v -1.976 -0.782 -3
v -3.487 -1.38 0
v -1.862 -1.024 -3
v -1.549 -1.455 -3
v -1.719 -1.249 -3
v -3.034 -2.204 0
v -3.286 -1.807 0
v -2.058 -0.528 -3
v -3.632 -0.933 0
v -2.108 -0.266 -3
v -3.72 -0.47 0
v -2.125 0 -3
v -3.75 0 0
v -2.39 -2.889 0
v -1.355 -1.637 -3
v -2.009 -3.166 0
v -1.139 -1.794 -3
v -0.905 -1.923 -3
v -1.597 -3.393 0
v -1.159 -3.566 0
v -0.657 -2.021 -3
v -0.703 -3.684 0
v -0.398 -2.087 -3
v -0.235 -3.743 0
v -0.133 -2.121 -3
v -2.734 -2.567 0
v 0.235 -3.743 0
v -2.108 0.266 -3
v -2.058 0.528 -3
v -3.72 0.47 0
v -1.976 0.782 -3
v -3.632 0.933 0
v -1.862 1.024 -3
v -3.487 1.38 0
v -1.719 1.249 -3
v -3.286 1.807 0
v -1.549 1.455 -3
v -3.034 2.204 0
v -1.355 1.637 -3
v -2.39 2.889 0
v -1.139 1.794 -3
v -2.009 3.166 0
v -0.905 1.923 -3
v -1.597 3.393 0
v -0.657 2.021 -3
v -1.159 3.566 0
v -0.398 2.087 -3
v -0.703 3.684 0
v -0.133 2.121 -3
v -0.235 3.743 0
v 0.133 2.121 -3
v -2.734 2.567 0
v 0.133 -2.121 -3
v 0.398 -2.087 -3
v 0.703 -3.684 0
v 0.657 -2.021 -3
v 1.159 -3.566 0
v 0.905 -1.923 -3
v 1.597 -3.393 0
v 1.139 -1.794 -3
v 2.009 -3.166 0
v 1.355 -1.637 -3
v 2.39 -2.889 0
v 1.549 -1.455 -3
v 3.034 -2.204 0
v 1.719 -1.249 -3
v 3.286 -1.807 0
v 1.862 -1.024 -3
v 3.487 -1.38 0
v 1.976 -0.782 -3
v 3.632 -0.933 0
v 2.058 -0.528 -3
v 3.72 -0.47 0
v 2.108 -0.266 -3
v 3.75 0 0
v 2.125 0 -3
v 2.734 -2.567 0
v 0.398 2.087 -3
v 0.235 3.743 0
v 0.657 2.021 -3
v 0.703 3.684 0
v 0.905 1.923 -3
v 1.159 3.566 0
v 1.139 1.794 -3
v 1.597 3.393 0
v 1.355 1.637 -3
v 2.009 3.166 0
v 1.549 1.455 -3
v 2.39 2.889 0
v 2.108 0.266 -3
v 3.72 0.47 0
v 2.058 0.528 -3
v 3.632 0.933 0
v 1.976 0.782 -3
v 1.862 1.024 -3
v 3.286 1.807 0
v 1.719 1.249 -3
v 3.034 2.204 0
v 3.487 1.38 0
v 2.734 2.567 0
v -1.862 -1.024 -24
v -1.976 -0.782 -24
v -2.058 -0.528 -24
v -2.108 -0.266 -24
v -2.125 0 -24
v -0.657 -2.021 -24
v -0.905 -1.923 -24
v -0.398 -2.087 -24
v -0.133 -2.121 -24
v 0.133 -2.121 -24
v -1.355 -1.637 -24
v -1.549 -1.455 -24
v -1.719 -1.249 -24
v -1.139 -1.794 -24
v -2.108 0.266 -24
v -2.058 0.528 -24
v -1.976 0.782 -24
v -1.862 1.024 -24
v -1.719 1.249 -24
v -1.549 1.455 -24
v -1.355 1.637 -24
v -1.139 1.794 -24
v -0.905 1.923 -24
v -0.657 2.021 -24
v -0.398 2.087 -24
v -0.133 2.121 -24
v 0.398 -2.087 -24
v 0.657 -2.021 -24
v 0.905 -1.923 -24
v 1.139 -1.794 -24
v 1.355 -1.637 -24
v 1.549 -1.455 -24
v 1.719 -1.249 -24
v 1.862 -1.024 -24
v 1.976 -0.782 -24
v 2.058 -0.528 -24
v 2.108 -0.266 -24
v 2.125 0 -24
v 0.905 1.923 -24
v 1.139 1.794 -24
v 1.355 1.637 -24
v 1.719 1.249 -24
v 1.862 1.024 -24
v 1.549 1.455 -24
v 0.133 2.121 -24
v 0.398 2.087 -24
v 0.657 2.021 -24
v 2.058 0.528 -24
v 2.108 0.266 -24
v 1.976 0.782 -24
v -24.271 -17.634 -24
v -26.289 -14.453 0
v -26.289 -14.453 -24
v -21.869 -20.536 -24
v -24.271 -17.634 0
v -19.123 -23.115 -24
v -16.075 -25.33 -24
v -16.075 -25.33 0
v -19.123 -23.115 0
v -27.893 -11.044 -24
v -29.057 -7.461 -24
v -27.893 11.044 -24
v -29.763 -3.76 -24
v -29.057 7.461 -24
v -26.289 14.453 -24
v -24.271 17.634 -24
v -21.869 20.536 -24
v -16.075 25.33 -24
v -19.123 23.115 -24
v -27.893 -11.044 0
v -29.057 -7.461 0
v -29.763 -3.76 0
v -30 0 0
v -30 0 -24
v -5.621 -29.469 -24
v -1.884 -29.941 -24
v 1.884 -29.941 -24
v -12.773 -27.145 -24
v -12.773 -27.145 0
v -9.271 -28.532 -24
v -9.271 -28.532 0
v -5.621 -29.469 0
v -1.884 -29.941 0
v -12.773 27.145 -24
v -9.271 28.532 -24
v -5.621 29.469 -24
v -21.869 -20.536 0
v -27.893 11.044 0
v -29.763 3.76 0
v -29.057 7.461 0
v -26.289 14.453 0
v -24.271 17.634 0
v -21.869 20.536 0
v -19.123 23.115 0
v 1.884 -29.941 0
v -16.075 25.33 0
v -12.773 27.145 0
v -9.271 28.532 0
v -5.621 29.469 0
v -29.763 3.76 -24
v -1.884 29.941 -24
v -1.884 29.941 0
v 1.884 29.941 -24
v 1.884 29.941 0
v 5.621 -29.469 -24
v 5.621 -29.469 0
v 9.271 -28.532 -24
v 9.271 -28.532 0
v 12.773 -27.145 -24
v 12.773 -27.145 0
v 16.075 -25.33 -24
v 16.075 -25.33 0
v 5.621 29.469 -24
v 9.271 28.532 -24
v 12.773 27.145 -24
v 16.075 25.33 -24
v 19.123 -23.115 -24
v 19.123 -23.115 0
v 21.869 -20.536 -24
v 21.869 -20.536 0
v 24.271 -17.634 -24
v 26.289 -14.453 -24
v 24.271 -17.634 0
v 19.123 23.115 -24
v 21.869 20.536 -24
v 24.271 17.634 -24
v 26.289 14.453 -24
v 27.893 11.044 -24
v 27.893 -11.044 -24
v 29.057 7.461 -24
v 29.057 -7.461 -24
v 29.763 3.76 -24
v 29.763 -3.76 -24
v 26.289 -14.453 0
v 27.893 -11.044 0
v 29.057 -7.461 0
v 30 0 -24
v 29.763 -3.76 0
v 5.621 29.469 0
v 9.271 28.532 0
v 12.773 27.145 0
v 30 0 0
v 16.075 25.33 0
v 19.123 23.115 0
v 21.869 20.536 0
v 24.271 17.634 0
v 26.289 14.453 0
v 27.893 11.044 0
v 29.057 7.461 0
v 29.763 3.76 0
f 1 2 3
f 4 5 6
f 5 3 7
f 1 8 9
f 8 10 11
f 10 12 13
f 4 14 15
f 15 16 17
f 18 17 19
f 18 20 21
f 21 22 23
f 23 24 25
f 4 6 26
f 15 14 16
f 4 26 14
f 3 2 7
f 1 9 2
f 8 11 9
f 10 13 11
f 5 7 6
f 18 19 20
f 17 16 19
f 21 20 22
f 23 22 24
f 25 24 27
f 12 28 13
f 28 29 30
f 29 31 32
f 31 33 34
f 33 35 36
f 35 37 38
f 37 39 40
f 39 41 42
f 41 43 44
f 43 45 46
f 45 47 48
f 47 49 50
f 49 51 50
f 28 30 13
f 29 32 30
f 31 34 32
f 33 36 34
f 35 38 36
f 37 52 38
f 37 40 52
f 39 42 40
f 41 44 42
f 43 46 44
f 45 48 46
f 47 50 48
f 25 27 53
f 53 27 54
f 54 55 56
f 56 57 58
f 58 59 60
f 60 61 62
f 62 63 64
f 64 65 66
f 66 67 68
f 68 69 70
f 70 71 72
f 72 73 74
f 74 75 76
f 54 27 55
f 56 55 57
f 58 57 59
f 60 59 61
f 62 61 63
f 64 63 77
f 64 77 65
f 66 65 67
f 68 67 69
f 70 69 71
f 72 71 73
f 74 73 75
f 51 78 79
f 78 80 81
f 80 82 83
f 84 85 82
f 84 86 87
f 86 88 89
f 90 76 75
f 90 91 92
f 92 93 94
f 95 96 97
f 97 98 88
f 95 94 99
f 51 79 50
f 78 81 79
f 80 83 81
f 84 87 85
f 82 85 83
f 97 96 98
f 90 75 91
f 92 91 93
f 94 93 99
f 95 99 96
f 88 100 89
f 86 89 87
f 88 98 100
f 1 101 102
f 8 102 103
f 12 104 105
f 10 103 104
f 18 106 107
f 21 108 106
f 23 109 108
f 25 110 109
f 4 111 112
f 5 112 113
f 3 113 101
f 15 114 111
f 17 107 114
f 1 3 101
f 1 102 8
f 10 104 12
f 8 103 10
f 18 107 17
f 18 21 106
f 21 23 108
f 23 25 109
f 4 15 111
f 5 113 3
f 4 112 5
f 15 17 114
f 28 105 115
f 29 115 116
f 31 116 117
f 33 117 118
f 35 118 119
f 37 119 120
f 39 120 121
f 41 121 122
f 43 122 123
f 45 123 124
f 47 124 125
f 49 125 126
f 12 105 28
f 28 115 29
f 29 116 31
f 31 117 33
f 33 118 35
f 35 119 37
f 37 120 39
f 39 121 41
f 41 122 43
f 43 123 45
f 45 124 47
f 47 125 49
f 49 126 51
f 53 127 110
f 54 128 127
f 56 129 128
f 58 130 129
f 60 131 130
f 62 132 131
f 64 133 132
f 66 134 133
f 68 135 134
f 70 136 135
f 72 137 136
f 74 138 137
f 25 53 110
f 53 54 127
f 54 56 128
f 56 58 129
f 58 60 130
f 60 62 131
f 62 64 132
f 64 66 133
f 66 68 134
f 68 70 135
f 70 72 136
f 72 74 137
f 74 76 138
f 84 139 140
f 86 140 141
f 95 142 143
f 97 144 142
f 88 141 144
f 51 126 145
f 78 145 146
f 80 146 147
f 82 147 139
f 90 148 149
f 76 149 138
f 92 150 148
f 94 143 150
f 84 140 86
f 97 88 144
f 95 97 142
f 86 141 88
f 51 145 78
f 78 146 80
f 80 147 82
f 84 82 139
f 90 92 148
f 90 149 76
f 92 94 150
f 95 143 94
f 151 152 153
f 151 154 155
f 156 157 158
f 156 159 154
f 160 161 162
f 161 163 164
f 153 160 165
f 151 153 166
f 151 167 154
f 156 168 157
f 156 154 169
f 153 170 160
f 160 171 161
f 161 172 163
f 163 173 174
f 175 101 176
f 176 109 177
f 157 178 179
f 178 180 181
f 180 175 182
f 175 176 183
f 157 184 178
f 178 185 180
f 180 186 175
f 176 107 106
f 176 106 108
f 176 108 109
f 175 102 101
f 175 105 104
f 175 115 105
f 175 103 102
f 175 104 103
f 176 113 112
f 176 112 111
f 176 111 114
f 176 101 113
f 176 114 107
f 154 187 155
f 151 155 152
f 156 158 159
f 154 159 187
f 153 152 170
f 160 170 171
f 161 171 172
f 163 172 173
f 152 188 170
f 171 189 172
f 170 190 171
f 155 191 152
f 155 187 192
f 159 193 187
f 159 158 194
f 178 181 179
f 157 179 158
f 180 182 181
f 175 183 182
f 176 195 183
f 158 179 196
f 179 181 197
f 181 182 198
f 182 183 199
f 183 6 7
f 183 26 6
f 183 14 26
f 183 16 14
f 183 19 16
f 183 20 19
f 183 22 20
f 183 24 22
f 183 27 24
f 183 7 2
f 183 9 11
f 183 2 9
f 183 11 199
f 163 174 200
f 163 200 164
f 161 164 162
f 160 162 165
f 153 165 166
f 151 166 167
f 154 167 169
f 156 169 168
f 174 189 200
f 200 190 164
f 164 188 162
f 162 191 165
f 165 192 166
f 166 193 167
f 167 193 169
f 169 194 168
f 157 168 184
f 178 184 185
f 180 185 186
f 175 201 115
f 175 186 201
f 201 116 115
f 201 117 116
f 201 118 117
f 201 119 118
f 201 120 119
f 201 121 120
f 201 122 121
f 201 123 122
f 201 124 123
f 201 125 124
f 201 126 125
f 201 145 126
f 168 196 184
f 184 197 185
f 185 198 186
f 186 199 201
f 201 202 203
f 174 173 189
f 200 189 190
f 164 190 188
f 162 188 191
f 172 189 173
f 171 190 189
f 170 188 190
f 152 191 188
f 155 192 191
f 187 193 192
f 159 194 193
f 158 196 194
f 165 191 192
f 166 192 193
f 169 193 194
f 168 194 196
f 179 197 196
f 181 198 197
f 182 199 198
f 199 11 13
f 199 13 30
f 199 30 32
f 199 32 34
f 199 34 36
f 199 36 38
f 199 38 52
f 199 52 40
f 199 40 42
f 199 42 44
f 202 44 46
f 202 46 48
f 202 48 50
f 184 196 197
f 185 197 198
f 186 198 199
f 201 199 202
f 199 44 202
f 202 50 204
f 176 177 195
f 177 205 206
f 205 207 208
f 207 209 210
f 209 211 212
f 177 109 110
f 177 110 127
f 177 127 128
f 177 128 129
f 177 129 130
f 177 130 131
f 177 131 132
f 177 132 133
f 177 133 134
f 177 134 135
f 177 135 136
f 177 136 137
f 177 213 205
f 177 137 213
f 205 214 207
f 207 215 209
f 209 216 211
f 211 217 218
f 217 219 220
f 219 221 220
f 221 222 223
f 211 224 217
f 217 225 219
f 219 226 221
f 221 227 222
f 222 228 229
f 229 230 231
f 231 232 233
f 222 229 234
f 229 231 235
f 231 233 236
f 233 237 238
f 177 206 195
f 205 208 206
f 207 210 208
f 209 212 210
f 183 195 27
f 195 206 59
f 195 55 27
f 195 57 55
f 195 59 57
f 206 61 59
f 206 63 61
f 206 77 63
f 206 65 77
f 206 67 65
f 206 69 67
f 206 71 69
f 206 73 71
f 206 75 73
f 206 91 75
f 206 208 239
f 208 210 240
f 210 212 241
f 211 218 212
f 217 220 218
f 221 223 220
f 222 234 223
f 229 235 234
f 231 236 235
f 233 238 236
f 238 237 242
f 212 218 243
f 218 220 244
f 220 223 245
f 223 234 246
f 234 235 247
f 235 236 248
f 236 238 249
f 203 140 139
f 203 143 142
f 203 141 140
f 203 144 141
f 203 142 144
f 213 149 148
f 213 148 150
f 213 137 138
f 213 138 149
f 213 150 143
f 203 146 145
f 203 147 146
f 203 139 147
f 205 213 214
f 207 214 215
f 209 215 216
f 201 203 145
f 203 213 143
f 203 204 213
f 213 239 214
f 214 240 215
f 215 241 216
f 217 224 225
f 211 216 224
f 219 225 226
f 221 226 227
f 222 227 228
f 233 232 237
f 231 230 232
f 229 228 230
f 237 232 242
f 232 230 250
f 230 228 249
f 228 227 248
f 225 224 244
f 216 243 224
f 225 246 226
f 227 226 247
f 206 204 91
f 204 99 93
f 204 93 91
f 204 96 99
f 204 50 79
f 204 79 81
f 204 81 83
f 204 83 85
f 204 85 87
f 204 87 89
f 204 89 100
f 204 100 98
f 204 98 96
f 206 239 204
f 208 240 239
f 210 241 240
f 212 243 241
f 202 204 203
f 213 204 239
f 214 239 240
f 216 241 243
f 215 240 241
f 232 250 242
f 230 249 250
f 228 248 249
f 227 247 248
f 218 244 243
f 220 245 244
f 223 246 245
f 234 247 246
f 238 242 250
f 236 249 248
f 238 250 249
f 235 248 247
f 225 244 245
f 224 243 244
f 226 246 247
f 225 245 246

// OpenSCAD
$fn = 50;

difference() {
	union() {
		translate(v = [0, 0, -24.0]) {
			cylinder(h = 24, r = 30.0);
		}
	}
	union() {
		translate(v = [0, 0, 0]) {
			rotate(a = [0, 0, 0]) {
				difference() {
					union() {
						translate(v = [0, 0, -27.0]) {
							cylinder(h = 27, r = 2.0);
						}
						translate(v = [0, 0, -3]) {
							cylinder(h = 3, r1 = 2.125, r2 = 3.75);
						}
						translate(v = [0, 0, -27.0]) {
							cylinder(h = 27, r = 2.125);
						}
						translate(v = [0, 0, -27.0]) {
							cylinder(h = 27, r = 2.0);
						}
					}
					union();
				}
			}
		}
	}
}
